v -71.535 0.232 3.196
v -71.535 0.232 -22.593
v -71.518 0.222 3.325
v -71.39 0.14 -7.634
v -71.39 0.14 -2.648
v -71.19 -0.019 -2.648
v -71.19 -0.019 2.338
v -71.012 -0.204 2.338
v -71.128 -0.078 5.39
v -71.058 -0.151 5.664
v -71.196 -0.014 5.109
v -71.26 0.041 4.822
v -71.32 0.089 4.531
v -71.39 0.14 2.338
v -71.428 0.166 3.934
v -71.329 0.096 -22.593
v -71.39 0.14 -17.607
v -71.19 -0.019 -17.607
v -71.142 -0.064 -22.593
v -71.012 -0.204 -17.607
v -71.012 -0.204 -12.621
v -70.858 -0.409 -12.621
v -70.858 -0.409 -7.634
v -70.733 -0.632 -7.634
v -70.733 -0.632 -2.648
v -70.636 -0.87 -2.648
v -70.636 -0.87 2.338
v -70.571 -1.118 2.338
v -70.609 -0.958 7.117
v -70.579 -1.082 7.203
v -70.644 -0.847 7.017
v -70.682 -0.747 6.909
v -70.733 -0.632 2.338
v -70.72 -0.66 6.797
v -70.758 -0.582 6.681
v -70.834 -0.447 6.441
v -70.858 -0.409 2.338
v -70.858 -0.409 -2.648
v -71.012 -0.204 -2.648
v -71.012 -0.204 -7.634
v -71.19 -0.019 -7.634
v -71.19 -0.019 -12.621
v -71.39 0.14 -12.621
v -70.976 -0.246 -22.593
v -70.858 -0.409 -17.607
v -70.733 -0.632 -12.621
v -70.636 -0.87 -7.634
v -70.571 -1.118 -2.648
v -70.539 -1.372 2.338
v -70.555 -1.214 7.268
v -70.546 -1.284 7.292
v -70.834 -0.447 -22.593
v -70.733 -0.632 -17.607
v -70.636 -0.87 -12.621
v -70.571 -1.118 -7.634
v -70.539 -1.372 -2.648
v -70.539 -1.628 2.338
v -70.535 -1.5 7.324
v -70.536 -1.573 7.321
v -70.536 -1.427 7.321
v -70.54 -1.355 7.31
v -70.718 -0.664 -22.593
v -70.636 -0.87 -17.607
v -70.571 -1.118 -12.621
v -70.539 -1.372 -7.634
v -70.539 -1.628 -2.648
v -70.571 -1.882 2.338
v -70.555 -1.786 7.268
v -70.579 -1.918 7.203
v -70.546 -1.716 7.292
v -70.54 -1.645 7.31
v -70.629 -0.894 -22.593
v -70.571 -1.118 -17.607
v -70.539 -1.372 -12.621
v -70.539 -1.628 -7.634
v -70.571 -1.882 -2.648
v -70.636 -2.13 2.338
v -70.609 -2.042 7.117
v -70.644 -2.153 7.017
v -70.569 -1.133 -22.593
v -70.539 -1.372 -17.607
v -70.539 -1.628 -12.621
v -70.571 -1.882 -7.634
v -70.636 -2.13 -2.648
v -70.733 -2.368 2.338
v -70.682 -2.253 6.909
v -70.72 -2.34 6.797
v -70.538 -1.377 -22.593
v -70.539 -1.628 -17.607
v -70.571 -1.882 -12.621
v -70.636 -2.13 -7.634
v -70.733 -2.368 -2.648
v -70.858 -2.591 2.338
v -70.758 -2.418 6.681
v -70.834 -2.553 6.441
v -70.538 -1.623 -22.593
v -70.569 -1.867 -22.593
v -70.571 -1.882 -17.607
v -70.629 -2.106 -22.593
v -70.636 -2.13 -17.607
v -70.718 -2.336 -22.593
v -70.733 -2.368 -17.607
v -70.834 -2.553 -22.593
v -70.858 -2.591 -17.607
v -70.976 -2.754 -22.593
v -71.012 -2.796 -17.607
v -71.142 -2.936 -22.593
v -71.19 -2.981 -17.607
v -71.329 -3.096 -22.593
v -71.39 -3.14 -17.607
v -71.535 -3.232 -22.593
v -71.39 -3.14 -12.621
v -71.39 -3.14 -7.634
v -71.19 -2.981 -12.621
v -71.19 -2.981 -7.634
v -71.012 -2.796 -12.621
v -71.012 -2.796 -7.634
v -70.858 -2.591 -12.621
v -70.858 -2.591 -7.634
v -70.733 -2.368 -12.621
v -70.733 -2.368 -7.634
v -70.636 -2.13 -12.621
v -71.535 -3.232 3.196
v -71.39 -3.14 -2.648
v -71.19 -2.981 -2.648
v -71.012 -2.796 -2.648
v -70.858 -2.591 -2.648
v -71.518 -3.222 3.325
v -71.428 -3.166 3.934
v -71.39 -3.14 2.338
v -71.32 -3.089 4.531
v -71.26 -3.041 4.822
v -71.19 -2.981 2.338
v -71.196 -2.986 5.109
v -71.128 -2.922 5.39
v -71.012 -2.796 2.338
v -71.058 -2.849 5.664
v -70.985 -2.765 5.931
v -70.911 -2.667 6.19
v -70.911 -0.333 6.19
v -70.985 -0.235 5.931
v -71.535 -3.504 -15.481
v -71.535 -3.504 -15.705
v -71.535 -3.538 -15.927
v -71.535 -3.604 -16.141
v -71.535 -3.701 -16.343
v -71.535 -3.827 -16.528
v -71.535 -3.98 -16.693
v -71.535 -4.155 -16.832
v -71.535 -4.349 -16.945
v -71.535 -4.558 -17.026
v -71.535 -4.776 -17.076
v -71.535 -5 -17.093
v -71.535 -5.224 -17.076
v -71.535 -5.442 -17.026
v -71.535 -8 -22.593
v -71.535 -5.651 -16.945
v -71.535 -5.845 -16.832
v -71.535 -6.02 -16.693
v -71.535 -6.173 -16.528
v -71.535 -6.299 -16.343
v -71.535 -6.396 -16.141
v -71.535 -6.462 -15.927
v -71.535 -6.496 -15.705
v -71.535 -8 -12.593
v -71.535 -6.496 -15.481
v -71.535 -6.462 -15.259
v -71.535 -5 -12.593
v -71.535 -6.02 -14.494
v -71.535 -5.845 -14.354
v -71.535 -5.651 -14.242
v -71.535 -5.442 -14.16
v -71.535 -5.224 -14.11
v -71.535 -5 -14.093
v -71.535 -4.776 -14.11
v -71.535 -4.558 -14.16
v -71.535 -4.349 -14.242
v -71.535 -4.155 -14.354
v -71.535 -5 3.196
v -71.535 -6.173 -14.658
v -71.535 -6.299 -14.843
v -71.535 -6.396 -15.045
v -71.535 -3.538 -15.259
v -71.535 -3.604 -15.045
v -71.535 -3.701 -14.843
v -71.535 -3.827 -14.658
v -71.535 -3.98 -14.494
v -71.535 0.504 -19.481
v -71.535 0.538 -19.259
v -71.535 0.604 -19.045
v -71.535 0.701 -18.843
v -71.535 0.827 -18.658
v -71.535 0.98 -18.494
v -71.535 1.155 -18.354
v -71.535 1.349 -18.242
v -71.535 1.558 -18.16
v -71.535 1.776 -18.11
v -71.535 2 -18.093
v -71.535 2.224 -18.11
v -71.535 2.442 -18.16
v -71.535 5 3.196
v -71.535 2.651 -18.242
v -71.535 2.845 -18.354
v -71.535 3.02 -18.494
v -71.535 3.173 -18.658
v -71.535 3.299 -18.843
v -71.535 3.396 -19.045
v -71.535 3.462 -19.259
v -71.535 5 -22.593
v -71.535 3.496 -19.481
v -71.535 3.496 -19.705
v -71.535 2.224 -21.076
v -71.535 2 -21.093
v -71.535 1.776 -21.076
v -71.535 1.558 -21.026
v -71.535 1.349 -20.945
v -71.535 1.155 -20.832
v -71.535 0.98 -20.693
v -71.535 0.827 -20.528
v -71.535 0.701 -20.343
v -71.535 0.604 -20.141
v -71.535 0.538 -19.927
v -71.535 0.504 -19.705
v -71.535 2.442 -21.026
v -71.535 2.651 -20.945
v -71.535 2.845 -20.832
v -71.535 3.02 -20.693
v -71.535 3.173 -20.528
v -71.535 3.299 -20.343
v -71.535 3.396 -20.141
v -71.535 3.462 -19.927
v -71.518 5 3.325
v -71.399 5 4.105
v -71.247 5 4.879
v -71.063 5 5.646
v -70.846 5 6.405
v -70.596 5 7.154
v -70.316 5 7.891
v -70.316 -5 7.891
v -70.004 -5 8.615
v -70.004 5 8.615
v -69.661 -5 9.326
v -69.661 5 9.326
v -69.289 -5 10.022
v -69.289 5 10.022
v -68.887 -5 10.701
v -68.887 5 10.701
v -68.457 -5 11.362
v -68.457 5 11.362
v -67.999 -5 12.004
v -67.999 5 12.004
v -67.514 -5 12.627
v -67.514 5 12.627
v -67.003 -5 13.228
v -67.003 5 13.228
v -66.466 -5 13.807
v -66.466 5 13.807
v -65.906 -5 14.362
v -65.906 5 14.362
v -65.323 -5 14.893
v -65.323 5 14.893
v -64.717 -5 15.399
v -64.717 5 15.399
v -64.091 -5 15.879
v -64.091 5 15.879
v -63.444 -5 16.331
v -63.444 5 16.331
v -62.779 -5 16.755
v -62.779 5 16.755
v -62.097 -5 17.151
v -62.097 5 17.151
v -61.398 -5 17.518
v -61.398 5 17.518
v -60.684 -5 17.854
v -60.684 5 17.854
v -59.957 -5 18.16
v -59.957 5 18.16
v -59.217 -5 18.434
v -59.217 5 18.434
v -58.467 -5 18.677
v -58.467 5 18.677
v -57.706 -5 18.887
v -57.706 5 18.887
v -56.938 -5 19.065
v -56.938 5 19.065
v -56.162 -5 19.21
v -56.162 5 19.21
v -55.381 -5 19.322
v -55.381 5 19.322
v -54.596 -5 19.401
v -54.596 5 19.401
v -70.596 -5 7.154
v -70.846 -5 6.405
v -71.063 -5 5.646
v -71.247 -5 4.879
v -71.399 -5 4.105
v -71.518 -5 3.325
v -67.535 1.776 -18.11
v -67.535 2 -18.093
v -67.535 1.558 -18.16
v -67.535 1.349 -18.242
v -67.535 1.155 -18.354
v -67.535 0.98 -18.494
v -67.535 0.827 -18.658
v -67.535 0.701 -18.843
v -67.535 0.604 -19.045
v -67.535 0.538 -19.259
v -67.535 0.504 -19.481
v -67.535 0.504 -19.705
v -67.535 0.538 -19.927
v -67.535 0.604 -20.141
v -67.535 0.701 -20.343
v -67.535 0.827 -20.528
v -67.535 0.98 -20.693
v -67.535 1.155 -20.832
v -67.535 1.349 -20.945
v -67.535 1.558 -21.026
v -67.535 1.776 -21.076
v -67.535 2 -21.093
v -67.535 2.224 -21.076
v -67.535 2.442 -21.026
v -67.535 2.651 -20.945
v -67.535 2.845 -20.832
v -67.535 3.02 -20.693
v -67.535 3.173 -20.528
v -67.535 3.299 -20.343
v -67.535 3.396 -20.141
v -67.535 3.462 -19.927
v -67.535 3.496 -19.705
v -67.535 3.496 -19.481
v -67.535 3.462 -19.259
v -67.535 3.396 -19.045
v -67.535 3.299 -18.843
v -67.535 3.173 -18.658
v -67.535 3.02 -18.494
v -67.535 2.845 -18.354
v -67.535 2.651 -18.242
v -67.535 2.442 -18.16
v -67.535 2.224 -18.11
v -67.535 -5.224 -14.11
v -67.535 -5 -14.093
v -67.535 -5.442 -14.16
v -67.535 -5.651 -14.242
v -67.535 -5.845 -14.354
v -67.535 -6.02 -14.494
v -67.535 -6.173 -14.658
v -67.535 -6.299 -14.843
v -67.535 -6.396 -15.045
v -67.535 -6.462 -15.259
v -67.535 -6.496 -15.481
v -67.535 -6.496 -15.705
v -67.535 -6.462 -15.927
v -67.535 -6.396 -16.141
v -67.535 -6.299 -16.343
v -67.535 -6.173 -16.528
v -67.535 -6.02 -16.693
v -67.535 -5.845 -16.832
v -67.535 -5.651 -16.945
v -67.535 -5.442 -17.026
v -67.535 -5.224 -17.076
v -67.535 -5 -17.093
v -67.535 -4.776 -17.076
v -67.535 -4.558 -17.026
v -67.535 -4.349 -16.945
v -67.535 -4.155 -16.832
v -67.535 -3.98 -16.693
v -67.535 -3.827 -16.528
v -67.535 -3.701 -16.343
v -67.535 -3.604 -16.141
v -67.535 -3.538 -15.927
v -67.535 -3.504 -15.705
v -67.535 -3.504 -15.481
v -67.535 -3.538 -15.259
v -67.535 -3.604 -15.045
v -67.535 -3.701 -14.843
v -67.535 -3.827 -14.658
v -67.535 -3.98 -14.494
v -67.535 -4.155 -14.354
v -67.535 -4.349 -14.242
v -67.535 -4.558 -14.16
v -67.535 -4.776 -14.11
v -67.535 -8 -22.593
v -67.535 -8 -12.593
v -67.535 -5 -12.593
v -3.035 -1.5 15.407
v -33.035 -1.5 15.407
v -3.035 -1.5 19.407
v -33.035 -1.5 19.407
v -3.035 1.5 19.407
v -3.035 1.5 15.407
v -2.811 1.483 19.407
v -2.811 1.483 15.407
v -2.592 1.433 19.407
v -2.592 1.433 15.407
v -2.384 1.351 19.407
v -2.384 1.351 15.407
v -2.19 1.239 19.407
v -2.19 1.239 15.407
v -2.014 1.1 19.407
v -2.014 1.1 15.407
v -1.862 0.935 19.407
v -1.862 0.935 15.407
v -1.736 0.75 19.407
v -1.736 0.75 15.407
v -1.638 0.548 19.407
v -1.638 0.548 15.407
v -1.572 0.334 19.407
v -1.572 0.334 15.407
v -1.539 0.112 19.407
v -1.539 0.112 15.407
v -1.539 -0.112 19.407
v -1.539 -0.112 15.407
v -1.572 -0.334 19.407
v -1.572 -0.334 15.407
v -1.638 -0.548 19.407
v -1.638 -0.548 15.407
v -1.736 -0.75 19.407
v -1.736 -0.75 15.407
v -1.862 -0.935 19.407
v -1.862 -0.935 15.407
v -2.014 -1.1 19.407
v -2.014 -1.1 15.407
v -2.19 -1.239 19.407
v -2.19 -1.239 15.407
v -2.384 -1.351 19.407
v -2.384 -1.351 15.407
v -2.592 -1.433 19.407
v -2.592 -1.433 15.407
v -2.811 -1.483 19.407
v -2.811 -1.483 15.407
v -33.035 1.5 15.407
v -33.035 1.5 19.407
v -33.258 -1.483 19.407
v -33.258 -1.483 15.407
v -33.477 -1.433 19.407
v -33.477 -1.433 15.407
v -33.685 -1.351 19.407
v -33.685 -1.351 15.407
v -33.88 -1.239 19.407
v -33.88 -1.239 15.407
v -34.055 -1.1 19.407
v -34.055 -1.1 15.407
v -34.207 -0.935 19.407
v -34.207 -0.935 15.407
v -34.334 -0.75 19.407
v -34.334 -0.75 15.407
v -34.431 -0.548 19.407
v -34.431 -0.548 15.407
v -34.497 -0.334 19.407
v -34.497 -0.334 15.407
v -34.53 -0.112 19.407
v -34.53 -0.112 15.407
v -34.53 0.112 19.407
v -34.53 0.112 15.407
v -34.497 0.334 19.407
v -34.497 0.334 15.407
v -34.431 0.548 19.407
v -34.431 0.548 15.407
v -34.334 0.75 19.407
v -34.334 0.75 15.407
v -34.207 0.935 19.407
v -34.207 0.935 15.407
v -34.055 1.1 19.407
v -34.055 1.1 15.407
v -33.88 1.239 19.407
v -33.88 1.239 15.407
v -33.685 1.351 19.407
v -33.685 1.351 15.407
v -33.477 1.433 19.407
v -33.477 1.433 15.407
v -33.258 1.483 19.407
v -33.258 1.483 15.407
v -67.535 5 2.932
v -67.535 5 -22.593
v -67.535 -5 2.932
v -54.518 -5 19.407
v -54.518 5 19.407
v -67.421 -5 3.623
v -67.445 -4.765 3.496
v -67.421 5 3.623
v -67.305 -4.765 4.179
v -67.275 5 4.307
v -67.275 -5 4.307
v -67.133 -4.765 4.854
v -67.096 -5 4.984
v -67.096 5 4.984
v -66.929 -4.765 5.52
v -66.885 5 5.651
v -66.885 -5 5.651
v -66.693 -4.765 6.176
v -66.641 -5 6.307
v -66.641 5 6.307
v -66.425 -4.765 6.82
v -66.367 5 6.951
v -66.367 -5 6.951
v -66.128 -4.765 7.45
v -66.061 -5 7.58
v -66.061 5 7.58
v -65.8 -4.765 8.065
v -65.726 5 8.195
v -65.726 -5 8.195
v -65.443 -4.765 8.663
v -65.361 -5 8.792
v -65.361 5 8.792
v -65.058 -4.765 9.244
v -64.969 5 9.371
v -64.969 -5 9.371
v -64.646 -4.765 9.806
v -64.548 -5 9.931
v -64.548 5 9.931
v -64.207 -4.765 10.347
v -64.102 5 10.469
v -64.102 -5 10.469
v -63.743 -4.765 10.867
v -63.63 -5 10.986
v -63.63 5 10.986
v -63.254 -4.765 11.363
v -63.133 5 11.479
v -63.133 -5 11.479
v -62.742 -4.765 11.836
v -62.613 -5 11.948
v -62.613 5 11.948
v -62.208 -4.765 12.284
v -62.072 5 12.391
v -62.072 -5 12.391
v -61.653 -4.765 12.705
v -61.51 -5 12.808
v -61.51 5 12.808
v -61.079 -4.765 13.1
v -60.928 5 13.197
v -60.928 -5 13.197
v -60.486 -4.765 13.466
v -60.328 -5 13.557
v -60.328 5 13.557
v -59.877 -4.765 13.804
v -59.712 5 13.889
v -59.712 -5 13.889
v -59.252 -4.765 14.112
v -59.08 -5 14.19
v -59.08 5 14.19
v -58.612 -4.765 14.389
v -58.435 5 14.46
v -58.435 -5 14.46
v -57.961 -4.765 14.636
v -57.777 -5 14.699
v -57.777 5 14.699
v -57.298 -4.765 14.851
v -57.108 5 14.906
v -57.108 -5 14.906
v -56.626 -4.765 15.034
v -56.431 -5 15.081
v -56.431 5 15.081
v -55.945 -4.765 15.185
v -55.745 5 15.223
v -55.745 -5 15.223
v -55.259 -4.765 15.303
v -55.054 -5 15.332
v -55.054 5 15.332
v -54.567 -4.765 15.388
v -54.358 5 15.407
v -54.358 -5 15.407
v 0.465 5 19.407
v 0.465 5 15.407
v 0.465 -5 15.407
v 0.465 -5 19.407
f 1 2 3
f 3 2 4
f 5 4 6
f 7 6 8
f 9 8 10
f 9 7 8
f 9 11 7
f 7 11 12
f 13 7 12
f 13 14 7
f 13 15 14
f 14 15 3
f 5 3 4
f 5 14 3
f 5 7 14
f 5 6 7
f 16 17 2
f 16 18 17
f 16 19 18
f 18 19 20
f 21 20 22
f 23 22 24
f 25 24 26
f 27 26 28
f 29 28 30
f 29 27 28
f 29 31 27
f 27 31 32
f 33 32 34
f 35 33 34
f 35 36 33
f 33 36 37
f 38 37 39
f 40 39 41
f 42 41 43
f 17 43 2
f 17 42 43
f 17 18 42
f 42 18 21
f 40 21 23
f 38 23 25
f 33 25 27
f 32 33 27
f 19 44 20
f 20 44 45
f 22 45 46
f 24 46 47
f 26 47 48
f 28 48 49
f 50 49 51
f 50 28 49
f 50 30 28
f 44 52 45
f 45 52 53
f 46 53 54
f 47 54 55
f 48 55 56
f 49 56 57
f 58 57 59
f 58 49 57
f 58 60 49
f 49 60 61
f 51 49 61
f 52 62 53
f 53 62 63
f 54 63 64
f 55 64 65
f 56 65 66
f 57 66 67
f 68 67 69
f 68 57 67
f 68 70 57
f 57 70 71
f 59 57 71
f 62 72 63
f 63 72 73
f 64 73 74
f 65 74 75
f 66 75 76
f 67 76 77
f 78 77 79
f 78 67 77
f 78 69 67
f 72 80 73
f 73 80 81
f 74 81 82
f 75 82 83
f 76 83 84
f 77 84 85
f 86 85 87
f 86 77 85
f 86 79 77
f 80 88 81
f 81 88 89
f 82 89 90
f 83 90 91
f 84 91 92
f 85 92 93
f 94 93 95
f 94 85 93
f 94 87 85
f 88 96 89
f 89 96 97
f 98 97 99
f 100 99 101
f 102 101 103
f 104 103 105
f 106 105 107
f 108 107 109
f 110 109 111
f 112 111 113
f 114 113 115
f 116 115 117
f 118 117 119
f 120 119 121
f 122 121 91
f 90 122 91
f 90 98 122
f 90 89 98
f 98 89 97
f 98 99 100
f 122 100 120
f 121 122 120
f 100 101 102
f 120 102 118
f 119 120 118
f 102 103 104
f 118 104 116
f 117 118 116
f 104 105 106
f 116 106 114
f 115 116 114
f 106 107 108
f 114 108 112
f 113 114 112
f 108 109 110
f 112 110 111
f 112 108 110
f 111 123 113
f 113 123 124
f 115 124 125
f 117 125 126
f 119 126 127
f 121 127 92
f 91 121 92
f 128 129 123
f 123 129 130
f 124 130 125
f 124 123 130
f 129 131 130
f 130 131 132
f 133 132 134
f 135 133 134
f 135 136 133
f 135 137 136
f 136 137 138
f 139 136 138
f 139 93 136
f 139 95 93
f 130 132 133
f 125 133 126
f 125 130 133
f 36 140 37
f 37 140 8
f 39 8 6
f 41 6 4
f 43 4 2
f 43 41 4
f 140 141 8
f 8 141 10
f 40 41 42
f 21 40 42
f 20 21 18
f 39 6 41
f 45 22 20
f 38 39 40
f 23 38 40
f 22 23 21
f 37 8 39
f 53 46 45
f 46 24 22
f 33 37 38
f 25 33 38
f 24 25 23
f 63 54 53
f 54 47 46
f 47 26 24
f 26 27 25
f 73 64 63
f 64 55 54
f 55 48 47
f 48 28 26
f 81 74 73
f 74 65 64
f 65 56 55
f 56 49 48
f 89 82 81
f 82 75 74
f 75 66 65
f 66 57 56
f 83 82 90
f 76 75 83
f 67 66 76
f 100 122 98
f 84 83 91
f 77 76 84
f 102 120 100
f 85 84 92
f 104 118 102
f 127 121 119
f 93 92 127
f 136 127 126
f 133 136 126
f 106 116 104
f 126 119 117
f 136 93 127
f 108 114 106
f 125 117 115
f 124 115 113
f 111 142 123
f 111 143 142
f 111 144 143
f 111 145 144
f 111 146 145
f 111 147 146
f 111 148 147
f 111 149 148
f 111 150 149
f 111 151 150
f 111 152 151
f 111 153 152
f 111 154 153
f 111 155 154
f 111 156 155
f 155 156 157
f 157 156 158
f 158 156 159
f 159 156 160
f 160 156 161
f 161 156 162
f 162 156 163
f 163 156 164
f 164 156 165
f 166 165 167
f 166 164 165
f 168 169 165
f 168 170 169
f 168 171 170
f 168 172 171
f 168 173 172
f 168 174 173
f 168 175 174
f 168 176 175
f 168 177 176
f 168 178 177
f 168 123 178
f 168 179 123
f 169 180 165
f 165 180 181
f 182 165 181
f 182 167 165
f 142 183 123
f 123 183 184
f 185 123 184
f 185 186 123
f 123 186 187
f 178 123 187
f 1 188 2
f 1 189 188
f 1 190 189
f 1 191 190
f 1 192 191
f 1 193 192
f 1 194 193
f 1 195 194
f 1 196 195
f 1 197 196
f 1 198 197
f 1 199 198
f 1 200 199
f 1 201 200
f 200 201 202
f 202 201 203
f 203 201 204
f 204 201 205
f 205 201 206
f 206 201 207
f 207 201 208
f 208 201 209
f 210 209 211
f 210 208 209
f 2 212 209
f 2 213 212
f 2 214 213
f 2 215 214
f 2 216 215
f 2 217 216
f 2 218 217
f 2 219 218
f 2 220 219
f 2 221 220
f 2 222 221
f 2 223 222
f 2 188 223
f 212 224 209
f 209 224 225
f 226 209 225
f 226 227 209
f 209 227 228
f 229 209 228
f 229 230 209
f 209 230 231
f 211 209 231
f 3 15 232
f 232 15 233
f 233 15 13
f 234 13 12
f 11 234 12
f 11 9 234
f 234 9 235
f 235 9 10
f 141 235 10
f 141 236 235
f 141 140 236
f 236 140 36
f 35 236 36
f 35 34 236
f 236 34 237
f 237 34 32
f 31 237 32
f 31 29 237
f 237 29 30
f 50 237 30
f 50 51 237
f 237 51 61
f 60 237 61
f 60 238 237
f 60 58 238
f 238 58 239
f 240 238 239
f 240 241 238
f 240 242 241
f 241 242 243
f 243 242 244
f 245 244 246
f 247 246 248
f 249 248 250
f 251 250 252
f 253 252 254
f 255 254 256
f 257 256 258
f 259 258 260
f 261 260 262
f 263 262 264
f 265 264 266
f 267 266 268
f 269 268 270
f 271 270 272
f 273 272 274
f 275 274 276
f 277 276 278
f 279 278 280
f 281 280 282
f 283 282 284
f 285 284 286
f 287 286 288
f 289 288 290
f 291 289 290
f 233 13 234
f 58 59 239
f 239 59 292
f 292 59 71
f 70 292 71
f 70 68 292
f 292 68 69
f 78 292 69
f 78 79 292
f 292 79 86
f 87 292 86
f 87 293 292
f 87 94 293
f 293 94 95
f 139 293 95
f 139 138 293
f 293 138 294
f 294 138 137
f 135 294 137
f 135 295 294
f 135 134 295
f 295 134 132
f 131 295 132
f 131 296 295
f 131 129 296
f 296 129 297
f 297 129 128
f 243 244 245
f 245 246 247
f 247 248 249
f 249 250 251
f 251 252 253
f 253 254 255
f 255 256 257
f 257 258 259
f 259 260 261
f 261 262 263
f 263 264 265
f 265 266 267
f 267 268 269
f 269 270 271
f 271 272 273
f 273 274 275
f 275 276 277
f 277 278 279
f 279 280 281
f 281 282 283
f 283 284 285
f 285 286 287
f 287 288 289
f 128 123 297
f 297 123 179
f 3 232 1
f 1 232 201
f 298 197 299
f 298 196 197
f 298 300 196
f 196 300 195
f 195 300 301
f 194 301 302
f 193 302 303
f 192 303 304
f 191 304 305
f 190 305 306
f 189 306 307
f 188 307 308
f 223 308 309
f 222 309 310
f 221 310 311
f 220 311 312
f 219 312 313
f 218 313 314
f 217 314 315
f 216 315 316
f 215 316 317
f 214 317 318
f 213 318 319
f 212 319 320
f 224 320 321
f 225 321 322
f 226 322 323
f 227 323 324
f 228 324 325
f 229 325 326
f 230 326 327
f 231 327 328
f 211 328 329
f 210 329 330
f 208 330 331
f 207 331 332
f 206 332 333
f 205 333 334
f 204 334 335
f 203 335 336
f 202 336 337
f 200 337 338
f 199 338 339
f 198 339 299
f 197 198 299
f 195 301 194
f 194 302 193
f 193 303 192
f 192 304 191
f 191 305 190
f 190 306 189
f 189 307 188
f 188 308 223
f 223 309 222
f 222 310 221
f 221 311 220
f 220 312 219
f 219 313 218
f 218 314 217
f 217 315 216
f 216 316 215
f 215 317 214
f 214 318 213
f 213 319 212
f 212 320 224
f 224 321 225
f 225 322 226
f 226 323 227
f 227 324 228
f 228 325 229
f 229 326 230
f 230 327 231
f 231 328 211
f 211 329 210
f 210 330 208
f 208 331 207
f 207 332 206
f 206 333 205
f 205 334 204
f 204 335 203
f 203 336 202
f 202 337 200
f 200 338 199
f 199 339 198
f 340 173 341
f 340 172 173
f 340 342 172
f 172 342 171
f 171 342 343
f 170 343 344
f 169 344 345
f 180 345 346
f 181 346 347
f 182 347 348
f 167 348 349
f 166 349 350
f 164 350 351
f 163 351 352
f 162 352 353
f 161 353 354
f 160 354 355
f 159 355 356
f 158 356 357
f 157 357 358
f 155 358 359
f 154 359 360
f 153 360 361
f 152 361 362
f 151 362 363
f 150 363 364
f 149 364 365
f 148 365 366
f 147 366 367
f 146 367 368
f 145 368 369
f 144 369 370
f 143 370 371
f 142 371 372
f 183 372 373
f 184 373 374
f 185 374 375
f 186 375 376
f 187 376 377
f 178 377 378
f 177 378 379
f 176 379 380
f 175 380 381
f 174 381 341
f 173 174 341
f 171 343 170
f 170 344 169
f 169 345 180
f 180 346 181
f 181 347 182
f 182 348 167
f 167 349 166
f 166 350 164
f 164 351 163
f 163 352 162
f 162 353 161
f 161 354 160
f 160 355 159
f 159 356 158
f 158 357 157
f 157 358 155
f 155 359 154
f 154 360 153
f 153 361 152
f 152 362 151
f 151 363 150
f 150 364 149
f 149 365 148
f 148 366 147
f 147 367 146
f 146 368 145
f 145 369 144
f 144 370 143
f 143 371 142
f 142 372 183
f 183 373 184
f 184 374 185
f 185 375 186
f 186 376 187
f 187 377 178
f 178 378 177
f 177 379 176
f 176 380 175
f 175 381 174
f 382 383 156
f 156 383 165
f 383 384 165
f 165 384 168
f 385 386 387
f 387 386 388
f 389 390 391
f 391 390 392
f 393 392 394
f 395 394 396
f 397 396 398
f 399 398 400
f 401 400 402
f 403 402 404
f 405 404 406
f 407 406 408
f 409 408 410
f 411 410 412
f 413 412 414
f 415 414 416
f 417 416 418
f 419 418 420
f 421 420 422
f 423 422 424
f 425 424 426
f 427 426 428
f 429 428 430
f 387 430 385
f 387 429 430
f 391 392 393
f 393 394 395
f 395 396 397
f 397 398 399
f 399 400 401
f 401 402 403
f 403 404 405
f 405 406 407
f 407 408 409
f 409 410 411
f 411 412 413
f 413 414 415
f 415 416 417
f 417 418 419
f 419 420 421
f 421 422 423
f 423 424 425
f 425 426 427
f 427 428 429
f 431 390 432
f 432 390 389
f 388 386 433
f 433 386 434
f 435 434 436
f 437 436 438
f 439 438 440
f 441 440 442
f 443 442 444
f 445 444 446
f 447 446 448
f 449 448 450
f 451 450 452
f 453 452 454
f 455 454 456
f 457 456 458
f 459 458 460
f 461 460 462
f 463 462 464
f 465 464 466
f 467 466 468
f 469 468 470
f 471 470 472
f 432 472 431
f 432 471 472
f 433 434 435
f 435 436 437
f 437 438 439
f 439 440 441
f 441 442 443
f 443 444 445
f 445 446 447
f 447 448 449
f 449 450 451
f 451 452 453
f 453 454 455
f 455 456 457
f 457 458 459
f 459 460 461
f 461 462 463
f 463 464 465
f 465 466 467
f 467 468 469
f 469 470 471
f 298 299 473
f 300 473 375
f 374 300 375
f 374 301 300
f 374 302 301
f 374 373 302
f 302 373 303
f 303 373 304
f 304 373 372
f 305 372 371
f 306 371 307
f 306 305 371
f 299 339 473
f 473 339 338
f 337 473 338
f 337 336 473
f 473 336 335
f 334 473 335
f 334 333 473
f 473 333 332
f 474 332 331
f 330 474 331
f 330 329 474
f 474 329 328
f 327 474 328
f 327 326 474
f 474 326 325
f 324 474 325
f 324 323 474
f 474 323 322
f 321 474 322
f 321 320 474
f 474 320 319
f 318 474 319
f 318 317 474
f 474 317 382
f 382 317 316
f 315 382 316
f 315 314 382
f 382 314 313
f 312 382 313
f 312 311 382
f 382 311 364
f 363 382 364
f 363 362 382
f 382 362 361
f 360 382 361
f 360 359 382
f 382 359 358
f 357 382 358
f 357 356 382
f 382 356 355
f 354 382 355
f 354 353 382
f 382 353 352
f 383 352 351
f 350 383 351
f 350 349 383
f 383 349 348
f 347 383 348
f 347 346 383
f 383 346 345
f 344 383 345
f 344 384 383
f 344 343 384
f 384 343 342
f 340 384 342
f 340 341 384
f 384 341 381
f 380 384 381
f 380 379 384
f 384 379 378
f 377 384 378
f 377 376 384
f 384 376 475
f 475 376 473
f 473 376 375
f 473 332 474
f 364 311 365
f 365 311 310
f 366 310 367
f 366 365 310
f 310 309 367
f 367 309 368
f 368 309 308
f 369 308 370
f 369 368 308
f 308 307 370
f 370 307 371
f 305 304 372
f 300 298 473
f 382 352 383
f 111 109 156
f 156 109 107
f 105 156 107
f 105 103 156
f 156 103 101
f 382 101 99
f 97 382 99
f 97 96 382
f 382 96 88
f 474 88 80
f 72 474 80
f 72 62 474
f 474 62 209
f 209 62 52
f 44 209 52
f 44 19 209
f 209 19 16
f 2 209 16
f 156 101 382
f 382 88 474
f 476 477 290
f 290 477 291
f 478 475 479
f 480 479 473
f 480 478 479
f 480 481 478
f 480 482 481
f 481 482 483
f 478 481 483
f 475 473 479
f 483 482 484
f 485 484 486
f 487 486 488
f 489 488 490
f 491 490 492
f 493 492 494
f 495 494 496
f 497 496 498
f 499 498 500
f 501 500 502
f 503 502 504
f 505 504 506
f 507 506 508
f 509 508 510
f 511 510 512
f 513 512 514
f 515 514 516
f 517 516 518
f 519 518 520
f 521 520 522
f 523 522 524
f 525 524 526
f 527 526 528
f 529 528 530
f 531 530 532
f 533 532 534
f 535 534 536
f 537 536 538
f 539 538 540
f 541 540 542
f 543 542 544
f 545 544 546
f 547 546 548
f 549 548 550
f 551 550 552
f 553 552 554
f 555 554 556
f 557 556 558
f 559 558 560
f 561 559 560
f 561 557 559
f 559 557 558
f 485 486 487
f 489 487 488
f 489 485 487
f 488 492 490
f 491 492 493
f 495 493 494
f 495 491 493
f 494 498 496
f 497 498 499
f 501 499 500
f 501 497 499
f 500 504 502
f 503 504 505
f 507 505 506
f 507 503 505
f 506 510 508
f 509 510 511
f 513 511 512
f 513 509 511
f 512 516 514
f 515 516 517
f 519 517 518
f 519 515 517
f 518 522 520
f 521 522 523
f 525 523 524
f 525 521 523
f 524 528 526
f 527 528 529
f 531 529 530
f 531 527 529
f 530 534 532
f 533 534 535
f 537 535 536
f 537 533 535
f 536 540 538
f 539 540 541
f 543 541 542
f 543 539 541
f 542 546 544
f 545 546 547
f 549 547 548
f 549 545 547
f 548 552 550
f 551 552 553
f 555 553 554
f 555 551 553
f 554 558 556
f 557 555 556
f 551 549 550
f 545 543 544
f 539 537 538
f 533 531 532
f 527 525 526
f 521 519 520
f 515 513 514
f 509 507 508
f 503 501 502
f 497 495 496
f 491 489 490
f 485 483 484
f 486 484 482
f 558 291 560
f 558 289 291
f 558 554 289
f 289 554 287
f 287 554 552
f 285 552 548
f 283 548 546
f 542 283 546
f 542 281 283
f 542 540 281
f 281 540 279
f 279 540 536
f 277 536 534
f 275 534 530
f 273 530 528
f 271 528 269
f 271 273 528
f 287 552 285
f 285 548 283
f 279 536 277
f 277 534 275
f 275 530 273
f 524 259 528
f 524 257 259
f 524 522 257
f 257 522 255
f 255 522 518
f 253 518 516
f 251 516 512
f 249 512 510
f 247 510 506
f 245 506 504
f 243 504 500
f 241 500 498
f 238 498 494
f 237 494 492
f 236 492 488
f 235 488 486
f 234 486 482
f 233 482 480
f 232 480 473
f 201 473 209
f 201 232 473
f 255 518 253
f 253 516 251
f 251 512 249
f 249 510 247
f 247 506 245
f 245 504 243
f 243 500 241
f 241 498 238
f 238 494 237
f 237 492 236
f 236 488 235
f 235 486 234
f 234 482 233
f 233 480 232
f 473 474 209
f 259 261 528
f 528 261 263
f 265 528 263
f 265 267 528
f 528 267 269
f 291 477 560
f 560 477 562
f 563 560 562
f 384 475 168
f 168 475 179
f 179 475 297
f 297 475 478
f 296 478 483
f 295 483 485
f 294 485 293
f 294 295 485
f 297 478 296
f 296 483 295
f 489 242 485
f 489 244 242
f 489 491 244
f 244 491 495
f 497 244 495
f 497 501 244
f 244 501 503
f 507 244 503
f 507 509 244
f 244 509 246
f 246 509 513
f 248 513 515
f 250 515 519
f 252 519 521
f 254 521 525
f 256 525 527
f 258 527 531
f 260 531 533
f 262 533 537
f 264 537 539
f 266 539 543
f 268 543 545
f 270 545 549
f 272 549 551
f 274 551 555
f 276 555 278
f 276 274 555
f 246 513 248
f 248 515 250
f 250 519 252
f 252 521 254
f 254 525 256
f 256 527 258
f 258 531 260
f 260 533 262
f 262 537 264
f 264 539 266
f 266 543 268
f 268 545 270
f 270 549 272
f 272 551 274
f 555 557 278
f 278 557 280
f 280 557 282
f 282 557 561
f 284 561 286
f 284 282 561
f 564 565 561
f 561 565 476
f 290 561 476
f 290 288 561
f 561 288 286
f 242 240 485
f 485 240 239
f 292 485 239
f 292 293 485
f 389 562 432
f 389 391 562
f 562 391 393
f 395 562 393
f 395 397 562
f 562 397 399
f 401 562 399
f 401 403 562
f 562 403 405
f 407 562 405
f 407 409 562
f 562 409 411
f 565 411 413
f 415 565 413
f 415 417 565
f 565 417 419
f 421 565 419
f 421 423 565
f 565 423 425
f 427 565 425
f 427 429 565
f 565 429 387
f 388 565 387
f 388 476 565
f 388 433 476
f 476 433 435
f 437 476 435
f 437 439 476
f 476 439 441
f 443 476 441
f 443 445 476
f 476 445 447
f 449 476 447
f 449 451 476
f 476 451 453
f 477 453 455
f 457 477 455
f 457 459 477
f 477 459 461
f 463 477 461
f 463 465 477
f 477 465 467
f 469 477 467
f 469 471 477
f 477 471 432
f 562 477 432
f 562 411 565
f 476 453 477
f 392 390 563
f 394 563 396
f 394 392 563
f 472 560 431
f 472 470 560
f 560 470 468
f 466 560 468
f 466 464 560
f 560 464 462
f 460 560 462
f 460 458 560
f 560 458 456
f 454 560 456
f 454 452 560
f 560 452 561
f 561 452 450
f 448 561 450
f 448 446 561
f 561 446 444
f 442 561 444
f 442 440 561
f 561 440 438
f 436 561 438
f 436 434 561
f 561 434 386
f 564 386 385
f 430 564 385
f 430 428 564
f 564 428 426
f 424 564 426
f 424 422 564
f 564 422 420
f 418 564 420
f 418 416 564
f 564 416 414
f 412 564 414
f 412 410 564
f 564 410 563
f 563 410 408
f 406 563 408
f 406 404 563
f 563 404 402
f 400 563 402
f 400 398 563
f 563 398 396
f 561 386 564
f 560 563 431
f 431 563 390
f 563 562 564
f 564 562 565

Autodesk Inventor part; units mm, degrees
ref_plane "YZ Plane" through (0, 0, 0) normal (1, 0, 0) x (0, 1, 0)
ref_plane "XZ Plane" through (0, 0, 0) normal (0, 1, 0) x (-1, 0, 0)
ref_plane "XY Plane" through (0, 0, 0) normal (0, 0, 1) x (1, 0, 0)
sketch "Sketch1" plane through (0, 0, 0) normal (0, 1, 0) x (-1, 0, 0)
  line L0 (-0.4654, 17.4069) -> (54.4394, 17.4069)
  line L1 (69.5346, 3.0665) -> (69.5346, -22.5931)
  arc A0 (69.5346, 3.0665) -> (54.4394, 17.4069) centre (53.1439, 0.9282) ccw
  point P0 (0, 0)
  dimension "d0" = 70
  dimension "d1" = 40
sketch "Sketch2" plane through (0, 0, 0) normal (1, 0, 0) x (0, 1, 0)
  line L0 (-5, 15.4069) -> (5, 15.4069)
  line L1 (5, 15.4069) -> (5, 19.4069)
  line L2 (5, 19.4069) -> (-5, 19.4069)
  line L3 (-5, 19.4069) -> (-5, 15.4069)
  point P0 (0, 0)
  point P1 (0, 17.4069)
  dimension "d2" = 10
  dimension "d3" = 5
  dimension "d4" = 4
  dimension "d5" = 2
sweep "Sweep1" add profiles "Sketch2" path "Sketch1"
sketch "Sketch3" plane through (0.4654, -5, 19.4069) normal (0, 0, 1) x (1, 0, 0)
  arc A0 (-3.5, 3.5) -> (-3.5, 6.5) centre (-3.5, 5) ccw
  arc A1 (-33.5, 6.5) -> (-33.5, 3.5) centre (-33.5, 5) ccw
  line L0 (-3.5, 3.5) -> (-33.5, 3.5)
  line L1 (-3.5, 6.5) -> (-33.5, 6.5)
  line L2 (0, 10) -> (-54.9833, 10) projected
  line L3 (0, 10) -> (0, 0) projected
  point P0 (-0.4654, 5)
  dimension "d8" = 3
  dimension "d9" = 3
  dimension "d10" = 5
  dimension "d11" = 3.5
  dimension "d12" = 30
extrude "Extrusion1" cut sketch "Sketch3" against normal through all
sketch "Sketch4" plane through (-71.5346, -5, -22.5931) normal (-1, 0, 0) x (0, 0, 1)
  line L0 (0, 10) -> (25.7895, 10) projected
  line L1 (0, 0) -> (0, 10) projected
  line L2 (0, 0) -> (25.7895, 0) projected
  line L3 (25.7895, 10) -> (25.7895, 0) projected
  line L4 (0, 0) -> (10, 0)
  line L5 (10, 0) -> (10, -3)
  line L6 (10, -3) -> (0, -3)
  line L7 (0, -3) -> (0, 0)
  circle A0 centre (3, 7) radius 1.5
  circle A1 centre (7, 0) radius 1.5
  point P0 (22.5931, 5)
  dimension "d15" = 3
  dimension "d16" = 10
  dimension "d17" = 3
  dimension "d18" = 3
  dimension "d19" = 3
  dimension "d20" = 3
  dimension "d21" = 3
  dimension "d22" = 3
extrude "Extrusion2" add sketch "Sketch4" against normal up to surface (4 mm away) contours L2 A1 L5 L6 L7 | L2 A1 picked at (6.8227, -0.4675)
extrude "Extrusion3" cut sketch "Sketch4" against normal through all contours A1 L2 | L2 A1 | A0
sketch "Sketch5" plane through (-67.5346, 5, -22.5931) normal (0, 0, -1) x (-1, 0, 0)
  line L0 (0, 0) -> (0, -13) projected
  line L1 (4, -13) -> (0, -13) projected
  line L2 (4, 0) -> (4, -13) projected
  line L3 (4, 0) -> (0, 0) projected
  circle A0 centre (5, -6.5) radius 2
  point P0 (-67.5346, -5)
  dimension "d27" = 4
  dimension "d28" = 6.5
  dimension "d31" = 1
extrude "Extrusion4" cut sketch "Sketch5" against normal through all contours A0 L2 | L2 A0
equation "\"d3\" = 0.5 * d2"
equation "\"d5\" = 0.5 * d4"
properties part number "eye_cam_arm"
